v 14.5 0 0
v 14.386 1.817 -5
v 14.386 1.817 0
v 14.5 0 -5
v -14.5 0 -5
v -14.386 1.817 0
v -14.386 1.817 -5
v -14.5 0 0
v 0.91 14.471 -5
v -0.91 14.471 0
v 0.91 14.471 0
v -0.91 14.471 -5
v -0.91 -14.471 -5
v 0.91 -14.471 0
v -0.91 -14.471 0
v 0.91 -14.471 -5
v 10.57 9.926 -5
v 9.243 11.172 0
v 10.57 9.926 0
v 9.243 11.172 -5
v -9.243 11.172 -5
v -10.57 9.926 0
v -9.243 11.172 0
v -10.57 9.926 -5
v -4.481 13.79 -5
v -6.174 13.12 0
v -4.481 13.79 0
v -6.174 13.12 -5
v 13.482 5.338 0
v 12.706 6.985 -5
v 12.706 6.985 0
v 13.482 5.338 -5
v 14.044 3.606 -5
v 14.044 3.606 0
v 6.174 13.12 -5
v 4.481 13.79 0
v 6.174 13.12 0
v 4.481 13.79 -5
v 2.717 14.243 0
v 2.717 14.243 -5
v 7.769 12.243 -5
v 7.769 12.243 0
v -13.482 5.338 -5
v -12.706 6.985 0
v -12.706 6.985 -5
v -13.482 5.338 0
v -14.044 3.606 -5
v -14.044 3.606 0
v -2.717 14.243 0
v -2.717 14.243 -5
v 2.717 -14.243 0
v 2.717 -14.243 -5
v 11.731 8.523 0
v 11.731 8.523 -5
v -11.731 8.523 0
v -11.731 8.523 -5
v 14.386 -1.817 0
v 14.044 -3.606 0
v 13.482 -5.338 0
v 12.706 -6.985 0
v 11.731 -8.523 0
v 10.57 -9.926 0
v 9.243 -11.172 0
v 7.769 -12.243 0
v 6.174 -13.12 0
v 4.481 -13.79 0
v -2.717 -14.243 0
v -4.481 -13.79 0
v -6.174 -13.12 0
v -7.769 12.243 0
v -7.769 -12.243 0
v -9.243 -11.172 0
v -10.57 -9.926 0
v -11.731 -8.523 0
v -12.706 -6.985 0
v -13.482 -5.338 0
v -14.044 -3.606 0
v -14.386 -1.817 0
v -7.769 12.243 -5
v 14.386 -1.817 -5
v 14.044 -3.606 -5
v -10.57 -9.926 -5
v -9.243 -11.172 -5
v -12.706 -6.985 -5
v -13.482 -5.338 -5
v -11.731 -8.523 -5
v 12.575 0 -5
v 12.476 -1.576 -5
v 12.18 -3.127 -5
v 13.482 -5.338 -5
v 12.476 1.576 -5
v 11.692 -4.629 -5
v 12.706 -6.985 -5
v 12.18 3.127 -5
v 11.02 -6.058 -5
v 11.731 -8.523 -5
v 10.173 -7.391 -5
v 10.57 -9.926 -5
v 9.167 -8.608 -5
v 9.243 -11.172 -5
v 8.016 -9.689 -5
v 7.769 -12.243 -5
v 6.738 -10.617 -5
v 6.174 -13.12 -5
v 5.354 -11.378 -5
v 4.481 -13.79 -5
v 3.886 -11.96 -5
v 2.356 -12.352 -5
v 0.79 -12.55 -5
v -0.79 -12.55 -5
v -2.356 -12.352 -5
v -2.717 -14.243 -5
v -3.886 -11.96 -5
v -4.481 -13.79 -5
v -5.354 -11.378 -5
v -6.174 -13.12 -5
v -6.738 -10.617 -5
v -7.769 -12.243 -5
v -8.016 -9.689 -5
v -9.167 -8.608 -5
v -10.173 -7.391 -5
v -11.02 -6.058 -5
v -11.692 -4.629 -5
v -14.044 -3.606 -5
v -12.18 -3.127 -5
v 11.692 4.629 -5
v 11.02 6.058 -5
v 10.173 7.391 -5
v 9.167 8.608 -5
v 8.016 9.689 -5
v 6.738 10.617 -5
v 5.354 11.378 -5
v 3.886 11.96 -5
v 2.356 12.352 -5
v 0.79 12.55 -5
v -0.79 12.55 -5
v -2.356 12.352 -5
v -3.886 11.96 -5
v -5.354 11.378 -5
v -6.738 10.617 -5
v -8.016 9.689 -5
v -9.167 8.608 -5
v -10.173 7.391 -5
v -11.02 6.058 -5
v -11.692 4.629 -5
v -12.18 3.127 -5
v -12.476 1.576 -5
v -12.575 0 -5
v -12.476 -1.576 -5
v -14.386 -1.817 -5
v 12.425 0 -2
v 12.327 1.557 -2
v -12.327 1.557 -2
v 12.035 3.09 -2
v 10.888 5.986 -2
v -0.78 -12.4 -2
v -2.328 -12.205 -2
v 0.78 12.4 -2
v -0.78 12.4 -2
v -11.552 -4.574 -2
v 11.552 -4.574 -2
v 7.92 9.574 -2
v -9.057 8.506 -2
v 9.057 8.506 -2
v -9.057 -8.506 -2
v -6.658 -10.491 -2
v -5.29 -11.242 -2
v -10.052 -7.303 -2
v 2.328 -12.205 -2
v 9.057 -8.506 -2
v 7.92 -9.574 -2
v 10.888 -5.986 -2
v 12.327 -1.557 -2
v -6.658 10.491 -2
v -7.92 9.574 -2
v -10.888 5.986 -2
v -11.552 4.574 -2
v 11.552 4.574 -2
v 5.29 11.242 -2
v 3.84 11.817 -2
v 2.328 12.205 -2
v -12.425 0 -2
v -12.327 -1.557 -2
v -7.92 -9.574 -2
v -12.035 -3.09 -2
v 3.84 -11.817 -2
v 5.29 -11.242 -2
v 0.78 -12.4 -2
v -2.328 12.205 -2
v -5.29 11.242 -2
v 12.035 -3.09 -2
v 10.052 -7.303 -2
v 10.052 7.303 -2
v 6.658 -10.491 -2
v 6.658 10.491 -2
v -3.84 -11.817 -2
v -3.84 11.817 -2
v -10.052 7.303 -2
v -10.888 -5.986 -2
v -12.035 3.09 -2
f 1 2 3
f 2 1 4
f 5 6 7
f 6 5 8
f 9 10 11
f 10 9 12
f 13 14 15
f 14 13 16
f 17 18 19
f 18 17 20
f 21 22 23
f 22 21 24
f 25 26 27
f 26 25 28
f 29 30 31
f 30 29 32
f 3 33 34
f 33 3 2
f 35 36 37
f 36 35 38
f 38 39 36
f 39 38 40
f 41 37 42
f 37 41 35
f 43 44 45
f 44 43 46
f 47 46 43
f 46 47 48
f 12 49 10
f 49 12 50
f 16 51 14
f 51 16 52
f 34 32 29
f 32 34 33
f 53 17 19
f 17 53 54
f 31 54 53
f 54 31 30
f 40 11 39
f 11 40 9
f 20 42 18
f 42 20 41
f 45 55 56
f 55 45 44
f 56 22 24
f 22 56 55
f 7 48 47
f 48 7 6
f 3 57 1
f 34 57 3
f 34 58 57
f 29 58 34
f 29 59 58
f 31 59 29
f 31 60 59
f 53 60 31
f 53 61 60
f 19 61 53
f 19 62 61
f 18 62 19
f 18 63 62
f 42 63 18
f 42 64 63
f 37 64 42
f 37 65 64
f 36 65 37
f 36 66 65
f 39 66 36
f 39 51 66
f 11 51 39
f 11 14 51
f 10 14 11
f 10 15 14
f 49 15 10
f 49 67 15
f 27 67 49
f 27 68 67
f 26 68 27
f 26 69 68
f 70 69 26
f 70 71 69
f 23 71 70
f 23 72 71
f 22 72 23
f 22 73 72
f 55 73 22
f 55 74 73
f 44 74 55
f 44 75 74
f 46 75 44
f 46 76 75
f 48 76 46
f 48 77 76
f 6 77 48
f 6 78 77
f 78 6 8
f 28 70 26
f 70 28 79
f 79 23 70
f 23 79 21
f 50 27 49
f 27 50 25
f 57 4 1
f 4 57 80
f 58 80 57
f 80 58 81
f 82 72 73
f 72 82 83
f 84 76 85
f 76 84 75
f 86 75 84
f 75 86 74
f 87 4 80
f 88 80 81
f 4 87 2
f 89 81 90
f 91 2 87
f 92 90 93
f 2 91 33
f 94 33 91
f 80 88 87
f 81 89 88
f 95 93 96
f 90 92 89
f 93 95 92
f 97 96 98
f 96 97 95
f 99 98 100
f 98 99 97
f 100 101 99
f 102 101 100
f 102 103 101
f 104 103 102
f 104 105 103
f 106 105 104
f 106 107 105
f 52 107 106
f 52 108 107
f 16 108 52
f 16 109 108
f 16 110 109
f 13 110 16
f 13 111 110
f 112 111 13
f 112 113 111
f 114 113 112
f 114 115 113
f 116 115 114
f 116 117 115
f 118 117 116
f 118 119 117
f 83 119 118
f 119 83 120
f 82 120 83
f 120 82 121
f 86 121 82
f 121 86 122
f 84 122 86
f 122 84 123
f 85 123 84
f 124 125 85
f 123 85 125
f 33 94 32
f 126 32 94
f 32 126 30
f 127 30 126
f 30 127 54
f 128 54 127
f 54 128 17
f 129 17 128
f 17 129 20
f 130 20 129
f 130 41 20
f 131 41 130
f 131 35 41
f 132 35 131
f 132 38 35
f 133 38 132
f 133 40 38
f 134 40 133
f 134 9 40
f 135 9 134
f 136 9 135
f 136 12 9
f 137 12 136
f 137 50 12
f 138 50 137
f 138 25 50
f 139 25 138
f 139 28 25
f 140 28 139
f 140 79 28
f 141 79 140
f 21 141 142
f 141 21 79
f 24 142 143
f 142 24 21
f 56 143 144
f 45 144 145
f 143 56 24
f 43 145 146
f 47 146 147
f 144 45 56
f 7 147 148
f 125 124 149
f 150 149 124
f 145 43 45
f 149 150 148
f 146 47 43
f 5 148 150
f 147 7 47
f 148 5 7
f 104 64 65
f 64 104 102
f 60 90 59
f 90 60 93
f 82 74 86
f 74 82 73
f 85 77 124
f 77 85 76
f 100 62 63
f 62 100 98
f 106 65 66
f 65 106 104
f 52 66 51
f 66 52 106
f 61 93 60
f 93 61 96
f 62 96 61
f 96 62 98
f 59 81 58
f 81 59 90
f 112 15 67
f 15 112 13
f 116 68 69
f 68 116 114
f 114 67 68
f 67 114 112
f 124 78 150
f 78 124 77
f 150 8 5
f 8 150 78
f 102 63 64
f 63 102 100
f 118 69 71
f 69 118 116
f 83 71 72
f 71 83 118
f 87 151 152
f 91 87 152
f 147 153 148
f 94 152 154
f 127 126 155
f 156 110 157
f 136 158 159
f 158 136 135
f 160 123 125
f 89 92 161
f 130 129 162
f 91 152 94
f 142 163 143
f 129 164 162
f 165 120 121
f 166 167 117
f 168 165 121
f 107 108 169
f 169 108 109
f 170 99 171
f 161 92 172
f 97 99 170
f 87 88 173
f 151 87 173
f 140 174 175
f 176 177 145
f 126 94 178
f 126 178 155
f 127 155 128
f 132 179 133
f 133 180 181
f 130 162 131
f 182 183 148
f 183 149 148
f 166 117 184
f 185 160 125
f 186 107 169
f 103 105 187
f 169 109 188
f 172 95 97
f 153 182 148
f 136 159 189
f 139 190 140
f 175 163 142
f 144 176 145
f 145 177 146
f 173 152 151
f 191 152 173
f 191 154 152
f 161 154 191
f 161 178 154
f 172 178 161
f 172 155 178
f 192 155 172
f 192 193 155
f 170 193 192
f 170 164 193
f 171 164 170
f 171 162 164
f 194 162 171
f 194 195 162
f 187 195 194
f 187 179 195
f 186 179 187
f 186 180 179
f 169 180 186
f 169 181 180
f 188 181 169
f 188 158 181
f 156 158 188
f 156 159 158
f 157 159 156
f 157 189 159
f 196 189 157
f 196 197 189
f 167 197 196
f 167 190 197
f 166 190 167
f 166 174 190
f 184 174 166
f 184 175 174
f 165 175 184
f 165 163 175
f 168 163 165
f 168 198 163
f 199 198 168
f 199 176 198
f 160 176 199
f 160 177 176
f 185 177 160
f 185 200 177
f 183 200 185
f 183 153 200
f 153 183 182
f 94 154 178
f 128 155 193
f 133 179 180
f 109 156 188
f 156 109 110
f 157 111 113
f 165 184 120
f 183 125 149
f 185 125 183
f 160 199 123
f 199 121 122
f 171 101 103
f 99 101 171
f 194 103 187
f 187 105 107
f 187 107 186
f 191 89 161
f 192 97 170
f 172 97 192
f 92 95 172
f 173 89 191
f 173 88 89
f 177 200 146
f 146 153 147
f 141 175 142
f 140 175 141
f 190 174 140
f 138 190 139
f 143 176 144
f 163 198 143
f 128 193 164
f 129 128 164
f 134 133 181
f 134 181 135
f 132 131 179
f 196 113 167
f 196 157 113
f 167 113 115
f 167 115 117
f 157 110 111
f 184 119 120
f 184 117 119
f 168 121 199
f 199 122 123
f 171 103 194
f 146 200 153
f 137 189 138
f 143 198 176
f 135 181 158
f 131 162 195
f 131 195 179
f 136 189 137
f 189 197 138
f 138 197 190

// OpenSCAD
$fn = 50;


difference() {
	union() {
		translate(v = [0, 0, -5.0000000000]) {
			cylinder(h = 5, r = 14.5000000000);
		}
	}
	union() {
		#translate(v = [0, 0, -5.0000000000]) {
			cylinder(h = 3, r1 = 12.5750000000, r2 = 12.4250000000);
		}
	}
}
